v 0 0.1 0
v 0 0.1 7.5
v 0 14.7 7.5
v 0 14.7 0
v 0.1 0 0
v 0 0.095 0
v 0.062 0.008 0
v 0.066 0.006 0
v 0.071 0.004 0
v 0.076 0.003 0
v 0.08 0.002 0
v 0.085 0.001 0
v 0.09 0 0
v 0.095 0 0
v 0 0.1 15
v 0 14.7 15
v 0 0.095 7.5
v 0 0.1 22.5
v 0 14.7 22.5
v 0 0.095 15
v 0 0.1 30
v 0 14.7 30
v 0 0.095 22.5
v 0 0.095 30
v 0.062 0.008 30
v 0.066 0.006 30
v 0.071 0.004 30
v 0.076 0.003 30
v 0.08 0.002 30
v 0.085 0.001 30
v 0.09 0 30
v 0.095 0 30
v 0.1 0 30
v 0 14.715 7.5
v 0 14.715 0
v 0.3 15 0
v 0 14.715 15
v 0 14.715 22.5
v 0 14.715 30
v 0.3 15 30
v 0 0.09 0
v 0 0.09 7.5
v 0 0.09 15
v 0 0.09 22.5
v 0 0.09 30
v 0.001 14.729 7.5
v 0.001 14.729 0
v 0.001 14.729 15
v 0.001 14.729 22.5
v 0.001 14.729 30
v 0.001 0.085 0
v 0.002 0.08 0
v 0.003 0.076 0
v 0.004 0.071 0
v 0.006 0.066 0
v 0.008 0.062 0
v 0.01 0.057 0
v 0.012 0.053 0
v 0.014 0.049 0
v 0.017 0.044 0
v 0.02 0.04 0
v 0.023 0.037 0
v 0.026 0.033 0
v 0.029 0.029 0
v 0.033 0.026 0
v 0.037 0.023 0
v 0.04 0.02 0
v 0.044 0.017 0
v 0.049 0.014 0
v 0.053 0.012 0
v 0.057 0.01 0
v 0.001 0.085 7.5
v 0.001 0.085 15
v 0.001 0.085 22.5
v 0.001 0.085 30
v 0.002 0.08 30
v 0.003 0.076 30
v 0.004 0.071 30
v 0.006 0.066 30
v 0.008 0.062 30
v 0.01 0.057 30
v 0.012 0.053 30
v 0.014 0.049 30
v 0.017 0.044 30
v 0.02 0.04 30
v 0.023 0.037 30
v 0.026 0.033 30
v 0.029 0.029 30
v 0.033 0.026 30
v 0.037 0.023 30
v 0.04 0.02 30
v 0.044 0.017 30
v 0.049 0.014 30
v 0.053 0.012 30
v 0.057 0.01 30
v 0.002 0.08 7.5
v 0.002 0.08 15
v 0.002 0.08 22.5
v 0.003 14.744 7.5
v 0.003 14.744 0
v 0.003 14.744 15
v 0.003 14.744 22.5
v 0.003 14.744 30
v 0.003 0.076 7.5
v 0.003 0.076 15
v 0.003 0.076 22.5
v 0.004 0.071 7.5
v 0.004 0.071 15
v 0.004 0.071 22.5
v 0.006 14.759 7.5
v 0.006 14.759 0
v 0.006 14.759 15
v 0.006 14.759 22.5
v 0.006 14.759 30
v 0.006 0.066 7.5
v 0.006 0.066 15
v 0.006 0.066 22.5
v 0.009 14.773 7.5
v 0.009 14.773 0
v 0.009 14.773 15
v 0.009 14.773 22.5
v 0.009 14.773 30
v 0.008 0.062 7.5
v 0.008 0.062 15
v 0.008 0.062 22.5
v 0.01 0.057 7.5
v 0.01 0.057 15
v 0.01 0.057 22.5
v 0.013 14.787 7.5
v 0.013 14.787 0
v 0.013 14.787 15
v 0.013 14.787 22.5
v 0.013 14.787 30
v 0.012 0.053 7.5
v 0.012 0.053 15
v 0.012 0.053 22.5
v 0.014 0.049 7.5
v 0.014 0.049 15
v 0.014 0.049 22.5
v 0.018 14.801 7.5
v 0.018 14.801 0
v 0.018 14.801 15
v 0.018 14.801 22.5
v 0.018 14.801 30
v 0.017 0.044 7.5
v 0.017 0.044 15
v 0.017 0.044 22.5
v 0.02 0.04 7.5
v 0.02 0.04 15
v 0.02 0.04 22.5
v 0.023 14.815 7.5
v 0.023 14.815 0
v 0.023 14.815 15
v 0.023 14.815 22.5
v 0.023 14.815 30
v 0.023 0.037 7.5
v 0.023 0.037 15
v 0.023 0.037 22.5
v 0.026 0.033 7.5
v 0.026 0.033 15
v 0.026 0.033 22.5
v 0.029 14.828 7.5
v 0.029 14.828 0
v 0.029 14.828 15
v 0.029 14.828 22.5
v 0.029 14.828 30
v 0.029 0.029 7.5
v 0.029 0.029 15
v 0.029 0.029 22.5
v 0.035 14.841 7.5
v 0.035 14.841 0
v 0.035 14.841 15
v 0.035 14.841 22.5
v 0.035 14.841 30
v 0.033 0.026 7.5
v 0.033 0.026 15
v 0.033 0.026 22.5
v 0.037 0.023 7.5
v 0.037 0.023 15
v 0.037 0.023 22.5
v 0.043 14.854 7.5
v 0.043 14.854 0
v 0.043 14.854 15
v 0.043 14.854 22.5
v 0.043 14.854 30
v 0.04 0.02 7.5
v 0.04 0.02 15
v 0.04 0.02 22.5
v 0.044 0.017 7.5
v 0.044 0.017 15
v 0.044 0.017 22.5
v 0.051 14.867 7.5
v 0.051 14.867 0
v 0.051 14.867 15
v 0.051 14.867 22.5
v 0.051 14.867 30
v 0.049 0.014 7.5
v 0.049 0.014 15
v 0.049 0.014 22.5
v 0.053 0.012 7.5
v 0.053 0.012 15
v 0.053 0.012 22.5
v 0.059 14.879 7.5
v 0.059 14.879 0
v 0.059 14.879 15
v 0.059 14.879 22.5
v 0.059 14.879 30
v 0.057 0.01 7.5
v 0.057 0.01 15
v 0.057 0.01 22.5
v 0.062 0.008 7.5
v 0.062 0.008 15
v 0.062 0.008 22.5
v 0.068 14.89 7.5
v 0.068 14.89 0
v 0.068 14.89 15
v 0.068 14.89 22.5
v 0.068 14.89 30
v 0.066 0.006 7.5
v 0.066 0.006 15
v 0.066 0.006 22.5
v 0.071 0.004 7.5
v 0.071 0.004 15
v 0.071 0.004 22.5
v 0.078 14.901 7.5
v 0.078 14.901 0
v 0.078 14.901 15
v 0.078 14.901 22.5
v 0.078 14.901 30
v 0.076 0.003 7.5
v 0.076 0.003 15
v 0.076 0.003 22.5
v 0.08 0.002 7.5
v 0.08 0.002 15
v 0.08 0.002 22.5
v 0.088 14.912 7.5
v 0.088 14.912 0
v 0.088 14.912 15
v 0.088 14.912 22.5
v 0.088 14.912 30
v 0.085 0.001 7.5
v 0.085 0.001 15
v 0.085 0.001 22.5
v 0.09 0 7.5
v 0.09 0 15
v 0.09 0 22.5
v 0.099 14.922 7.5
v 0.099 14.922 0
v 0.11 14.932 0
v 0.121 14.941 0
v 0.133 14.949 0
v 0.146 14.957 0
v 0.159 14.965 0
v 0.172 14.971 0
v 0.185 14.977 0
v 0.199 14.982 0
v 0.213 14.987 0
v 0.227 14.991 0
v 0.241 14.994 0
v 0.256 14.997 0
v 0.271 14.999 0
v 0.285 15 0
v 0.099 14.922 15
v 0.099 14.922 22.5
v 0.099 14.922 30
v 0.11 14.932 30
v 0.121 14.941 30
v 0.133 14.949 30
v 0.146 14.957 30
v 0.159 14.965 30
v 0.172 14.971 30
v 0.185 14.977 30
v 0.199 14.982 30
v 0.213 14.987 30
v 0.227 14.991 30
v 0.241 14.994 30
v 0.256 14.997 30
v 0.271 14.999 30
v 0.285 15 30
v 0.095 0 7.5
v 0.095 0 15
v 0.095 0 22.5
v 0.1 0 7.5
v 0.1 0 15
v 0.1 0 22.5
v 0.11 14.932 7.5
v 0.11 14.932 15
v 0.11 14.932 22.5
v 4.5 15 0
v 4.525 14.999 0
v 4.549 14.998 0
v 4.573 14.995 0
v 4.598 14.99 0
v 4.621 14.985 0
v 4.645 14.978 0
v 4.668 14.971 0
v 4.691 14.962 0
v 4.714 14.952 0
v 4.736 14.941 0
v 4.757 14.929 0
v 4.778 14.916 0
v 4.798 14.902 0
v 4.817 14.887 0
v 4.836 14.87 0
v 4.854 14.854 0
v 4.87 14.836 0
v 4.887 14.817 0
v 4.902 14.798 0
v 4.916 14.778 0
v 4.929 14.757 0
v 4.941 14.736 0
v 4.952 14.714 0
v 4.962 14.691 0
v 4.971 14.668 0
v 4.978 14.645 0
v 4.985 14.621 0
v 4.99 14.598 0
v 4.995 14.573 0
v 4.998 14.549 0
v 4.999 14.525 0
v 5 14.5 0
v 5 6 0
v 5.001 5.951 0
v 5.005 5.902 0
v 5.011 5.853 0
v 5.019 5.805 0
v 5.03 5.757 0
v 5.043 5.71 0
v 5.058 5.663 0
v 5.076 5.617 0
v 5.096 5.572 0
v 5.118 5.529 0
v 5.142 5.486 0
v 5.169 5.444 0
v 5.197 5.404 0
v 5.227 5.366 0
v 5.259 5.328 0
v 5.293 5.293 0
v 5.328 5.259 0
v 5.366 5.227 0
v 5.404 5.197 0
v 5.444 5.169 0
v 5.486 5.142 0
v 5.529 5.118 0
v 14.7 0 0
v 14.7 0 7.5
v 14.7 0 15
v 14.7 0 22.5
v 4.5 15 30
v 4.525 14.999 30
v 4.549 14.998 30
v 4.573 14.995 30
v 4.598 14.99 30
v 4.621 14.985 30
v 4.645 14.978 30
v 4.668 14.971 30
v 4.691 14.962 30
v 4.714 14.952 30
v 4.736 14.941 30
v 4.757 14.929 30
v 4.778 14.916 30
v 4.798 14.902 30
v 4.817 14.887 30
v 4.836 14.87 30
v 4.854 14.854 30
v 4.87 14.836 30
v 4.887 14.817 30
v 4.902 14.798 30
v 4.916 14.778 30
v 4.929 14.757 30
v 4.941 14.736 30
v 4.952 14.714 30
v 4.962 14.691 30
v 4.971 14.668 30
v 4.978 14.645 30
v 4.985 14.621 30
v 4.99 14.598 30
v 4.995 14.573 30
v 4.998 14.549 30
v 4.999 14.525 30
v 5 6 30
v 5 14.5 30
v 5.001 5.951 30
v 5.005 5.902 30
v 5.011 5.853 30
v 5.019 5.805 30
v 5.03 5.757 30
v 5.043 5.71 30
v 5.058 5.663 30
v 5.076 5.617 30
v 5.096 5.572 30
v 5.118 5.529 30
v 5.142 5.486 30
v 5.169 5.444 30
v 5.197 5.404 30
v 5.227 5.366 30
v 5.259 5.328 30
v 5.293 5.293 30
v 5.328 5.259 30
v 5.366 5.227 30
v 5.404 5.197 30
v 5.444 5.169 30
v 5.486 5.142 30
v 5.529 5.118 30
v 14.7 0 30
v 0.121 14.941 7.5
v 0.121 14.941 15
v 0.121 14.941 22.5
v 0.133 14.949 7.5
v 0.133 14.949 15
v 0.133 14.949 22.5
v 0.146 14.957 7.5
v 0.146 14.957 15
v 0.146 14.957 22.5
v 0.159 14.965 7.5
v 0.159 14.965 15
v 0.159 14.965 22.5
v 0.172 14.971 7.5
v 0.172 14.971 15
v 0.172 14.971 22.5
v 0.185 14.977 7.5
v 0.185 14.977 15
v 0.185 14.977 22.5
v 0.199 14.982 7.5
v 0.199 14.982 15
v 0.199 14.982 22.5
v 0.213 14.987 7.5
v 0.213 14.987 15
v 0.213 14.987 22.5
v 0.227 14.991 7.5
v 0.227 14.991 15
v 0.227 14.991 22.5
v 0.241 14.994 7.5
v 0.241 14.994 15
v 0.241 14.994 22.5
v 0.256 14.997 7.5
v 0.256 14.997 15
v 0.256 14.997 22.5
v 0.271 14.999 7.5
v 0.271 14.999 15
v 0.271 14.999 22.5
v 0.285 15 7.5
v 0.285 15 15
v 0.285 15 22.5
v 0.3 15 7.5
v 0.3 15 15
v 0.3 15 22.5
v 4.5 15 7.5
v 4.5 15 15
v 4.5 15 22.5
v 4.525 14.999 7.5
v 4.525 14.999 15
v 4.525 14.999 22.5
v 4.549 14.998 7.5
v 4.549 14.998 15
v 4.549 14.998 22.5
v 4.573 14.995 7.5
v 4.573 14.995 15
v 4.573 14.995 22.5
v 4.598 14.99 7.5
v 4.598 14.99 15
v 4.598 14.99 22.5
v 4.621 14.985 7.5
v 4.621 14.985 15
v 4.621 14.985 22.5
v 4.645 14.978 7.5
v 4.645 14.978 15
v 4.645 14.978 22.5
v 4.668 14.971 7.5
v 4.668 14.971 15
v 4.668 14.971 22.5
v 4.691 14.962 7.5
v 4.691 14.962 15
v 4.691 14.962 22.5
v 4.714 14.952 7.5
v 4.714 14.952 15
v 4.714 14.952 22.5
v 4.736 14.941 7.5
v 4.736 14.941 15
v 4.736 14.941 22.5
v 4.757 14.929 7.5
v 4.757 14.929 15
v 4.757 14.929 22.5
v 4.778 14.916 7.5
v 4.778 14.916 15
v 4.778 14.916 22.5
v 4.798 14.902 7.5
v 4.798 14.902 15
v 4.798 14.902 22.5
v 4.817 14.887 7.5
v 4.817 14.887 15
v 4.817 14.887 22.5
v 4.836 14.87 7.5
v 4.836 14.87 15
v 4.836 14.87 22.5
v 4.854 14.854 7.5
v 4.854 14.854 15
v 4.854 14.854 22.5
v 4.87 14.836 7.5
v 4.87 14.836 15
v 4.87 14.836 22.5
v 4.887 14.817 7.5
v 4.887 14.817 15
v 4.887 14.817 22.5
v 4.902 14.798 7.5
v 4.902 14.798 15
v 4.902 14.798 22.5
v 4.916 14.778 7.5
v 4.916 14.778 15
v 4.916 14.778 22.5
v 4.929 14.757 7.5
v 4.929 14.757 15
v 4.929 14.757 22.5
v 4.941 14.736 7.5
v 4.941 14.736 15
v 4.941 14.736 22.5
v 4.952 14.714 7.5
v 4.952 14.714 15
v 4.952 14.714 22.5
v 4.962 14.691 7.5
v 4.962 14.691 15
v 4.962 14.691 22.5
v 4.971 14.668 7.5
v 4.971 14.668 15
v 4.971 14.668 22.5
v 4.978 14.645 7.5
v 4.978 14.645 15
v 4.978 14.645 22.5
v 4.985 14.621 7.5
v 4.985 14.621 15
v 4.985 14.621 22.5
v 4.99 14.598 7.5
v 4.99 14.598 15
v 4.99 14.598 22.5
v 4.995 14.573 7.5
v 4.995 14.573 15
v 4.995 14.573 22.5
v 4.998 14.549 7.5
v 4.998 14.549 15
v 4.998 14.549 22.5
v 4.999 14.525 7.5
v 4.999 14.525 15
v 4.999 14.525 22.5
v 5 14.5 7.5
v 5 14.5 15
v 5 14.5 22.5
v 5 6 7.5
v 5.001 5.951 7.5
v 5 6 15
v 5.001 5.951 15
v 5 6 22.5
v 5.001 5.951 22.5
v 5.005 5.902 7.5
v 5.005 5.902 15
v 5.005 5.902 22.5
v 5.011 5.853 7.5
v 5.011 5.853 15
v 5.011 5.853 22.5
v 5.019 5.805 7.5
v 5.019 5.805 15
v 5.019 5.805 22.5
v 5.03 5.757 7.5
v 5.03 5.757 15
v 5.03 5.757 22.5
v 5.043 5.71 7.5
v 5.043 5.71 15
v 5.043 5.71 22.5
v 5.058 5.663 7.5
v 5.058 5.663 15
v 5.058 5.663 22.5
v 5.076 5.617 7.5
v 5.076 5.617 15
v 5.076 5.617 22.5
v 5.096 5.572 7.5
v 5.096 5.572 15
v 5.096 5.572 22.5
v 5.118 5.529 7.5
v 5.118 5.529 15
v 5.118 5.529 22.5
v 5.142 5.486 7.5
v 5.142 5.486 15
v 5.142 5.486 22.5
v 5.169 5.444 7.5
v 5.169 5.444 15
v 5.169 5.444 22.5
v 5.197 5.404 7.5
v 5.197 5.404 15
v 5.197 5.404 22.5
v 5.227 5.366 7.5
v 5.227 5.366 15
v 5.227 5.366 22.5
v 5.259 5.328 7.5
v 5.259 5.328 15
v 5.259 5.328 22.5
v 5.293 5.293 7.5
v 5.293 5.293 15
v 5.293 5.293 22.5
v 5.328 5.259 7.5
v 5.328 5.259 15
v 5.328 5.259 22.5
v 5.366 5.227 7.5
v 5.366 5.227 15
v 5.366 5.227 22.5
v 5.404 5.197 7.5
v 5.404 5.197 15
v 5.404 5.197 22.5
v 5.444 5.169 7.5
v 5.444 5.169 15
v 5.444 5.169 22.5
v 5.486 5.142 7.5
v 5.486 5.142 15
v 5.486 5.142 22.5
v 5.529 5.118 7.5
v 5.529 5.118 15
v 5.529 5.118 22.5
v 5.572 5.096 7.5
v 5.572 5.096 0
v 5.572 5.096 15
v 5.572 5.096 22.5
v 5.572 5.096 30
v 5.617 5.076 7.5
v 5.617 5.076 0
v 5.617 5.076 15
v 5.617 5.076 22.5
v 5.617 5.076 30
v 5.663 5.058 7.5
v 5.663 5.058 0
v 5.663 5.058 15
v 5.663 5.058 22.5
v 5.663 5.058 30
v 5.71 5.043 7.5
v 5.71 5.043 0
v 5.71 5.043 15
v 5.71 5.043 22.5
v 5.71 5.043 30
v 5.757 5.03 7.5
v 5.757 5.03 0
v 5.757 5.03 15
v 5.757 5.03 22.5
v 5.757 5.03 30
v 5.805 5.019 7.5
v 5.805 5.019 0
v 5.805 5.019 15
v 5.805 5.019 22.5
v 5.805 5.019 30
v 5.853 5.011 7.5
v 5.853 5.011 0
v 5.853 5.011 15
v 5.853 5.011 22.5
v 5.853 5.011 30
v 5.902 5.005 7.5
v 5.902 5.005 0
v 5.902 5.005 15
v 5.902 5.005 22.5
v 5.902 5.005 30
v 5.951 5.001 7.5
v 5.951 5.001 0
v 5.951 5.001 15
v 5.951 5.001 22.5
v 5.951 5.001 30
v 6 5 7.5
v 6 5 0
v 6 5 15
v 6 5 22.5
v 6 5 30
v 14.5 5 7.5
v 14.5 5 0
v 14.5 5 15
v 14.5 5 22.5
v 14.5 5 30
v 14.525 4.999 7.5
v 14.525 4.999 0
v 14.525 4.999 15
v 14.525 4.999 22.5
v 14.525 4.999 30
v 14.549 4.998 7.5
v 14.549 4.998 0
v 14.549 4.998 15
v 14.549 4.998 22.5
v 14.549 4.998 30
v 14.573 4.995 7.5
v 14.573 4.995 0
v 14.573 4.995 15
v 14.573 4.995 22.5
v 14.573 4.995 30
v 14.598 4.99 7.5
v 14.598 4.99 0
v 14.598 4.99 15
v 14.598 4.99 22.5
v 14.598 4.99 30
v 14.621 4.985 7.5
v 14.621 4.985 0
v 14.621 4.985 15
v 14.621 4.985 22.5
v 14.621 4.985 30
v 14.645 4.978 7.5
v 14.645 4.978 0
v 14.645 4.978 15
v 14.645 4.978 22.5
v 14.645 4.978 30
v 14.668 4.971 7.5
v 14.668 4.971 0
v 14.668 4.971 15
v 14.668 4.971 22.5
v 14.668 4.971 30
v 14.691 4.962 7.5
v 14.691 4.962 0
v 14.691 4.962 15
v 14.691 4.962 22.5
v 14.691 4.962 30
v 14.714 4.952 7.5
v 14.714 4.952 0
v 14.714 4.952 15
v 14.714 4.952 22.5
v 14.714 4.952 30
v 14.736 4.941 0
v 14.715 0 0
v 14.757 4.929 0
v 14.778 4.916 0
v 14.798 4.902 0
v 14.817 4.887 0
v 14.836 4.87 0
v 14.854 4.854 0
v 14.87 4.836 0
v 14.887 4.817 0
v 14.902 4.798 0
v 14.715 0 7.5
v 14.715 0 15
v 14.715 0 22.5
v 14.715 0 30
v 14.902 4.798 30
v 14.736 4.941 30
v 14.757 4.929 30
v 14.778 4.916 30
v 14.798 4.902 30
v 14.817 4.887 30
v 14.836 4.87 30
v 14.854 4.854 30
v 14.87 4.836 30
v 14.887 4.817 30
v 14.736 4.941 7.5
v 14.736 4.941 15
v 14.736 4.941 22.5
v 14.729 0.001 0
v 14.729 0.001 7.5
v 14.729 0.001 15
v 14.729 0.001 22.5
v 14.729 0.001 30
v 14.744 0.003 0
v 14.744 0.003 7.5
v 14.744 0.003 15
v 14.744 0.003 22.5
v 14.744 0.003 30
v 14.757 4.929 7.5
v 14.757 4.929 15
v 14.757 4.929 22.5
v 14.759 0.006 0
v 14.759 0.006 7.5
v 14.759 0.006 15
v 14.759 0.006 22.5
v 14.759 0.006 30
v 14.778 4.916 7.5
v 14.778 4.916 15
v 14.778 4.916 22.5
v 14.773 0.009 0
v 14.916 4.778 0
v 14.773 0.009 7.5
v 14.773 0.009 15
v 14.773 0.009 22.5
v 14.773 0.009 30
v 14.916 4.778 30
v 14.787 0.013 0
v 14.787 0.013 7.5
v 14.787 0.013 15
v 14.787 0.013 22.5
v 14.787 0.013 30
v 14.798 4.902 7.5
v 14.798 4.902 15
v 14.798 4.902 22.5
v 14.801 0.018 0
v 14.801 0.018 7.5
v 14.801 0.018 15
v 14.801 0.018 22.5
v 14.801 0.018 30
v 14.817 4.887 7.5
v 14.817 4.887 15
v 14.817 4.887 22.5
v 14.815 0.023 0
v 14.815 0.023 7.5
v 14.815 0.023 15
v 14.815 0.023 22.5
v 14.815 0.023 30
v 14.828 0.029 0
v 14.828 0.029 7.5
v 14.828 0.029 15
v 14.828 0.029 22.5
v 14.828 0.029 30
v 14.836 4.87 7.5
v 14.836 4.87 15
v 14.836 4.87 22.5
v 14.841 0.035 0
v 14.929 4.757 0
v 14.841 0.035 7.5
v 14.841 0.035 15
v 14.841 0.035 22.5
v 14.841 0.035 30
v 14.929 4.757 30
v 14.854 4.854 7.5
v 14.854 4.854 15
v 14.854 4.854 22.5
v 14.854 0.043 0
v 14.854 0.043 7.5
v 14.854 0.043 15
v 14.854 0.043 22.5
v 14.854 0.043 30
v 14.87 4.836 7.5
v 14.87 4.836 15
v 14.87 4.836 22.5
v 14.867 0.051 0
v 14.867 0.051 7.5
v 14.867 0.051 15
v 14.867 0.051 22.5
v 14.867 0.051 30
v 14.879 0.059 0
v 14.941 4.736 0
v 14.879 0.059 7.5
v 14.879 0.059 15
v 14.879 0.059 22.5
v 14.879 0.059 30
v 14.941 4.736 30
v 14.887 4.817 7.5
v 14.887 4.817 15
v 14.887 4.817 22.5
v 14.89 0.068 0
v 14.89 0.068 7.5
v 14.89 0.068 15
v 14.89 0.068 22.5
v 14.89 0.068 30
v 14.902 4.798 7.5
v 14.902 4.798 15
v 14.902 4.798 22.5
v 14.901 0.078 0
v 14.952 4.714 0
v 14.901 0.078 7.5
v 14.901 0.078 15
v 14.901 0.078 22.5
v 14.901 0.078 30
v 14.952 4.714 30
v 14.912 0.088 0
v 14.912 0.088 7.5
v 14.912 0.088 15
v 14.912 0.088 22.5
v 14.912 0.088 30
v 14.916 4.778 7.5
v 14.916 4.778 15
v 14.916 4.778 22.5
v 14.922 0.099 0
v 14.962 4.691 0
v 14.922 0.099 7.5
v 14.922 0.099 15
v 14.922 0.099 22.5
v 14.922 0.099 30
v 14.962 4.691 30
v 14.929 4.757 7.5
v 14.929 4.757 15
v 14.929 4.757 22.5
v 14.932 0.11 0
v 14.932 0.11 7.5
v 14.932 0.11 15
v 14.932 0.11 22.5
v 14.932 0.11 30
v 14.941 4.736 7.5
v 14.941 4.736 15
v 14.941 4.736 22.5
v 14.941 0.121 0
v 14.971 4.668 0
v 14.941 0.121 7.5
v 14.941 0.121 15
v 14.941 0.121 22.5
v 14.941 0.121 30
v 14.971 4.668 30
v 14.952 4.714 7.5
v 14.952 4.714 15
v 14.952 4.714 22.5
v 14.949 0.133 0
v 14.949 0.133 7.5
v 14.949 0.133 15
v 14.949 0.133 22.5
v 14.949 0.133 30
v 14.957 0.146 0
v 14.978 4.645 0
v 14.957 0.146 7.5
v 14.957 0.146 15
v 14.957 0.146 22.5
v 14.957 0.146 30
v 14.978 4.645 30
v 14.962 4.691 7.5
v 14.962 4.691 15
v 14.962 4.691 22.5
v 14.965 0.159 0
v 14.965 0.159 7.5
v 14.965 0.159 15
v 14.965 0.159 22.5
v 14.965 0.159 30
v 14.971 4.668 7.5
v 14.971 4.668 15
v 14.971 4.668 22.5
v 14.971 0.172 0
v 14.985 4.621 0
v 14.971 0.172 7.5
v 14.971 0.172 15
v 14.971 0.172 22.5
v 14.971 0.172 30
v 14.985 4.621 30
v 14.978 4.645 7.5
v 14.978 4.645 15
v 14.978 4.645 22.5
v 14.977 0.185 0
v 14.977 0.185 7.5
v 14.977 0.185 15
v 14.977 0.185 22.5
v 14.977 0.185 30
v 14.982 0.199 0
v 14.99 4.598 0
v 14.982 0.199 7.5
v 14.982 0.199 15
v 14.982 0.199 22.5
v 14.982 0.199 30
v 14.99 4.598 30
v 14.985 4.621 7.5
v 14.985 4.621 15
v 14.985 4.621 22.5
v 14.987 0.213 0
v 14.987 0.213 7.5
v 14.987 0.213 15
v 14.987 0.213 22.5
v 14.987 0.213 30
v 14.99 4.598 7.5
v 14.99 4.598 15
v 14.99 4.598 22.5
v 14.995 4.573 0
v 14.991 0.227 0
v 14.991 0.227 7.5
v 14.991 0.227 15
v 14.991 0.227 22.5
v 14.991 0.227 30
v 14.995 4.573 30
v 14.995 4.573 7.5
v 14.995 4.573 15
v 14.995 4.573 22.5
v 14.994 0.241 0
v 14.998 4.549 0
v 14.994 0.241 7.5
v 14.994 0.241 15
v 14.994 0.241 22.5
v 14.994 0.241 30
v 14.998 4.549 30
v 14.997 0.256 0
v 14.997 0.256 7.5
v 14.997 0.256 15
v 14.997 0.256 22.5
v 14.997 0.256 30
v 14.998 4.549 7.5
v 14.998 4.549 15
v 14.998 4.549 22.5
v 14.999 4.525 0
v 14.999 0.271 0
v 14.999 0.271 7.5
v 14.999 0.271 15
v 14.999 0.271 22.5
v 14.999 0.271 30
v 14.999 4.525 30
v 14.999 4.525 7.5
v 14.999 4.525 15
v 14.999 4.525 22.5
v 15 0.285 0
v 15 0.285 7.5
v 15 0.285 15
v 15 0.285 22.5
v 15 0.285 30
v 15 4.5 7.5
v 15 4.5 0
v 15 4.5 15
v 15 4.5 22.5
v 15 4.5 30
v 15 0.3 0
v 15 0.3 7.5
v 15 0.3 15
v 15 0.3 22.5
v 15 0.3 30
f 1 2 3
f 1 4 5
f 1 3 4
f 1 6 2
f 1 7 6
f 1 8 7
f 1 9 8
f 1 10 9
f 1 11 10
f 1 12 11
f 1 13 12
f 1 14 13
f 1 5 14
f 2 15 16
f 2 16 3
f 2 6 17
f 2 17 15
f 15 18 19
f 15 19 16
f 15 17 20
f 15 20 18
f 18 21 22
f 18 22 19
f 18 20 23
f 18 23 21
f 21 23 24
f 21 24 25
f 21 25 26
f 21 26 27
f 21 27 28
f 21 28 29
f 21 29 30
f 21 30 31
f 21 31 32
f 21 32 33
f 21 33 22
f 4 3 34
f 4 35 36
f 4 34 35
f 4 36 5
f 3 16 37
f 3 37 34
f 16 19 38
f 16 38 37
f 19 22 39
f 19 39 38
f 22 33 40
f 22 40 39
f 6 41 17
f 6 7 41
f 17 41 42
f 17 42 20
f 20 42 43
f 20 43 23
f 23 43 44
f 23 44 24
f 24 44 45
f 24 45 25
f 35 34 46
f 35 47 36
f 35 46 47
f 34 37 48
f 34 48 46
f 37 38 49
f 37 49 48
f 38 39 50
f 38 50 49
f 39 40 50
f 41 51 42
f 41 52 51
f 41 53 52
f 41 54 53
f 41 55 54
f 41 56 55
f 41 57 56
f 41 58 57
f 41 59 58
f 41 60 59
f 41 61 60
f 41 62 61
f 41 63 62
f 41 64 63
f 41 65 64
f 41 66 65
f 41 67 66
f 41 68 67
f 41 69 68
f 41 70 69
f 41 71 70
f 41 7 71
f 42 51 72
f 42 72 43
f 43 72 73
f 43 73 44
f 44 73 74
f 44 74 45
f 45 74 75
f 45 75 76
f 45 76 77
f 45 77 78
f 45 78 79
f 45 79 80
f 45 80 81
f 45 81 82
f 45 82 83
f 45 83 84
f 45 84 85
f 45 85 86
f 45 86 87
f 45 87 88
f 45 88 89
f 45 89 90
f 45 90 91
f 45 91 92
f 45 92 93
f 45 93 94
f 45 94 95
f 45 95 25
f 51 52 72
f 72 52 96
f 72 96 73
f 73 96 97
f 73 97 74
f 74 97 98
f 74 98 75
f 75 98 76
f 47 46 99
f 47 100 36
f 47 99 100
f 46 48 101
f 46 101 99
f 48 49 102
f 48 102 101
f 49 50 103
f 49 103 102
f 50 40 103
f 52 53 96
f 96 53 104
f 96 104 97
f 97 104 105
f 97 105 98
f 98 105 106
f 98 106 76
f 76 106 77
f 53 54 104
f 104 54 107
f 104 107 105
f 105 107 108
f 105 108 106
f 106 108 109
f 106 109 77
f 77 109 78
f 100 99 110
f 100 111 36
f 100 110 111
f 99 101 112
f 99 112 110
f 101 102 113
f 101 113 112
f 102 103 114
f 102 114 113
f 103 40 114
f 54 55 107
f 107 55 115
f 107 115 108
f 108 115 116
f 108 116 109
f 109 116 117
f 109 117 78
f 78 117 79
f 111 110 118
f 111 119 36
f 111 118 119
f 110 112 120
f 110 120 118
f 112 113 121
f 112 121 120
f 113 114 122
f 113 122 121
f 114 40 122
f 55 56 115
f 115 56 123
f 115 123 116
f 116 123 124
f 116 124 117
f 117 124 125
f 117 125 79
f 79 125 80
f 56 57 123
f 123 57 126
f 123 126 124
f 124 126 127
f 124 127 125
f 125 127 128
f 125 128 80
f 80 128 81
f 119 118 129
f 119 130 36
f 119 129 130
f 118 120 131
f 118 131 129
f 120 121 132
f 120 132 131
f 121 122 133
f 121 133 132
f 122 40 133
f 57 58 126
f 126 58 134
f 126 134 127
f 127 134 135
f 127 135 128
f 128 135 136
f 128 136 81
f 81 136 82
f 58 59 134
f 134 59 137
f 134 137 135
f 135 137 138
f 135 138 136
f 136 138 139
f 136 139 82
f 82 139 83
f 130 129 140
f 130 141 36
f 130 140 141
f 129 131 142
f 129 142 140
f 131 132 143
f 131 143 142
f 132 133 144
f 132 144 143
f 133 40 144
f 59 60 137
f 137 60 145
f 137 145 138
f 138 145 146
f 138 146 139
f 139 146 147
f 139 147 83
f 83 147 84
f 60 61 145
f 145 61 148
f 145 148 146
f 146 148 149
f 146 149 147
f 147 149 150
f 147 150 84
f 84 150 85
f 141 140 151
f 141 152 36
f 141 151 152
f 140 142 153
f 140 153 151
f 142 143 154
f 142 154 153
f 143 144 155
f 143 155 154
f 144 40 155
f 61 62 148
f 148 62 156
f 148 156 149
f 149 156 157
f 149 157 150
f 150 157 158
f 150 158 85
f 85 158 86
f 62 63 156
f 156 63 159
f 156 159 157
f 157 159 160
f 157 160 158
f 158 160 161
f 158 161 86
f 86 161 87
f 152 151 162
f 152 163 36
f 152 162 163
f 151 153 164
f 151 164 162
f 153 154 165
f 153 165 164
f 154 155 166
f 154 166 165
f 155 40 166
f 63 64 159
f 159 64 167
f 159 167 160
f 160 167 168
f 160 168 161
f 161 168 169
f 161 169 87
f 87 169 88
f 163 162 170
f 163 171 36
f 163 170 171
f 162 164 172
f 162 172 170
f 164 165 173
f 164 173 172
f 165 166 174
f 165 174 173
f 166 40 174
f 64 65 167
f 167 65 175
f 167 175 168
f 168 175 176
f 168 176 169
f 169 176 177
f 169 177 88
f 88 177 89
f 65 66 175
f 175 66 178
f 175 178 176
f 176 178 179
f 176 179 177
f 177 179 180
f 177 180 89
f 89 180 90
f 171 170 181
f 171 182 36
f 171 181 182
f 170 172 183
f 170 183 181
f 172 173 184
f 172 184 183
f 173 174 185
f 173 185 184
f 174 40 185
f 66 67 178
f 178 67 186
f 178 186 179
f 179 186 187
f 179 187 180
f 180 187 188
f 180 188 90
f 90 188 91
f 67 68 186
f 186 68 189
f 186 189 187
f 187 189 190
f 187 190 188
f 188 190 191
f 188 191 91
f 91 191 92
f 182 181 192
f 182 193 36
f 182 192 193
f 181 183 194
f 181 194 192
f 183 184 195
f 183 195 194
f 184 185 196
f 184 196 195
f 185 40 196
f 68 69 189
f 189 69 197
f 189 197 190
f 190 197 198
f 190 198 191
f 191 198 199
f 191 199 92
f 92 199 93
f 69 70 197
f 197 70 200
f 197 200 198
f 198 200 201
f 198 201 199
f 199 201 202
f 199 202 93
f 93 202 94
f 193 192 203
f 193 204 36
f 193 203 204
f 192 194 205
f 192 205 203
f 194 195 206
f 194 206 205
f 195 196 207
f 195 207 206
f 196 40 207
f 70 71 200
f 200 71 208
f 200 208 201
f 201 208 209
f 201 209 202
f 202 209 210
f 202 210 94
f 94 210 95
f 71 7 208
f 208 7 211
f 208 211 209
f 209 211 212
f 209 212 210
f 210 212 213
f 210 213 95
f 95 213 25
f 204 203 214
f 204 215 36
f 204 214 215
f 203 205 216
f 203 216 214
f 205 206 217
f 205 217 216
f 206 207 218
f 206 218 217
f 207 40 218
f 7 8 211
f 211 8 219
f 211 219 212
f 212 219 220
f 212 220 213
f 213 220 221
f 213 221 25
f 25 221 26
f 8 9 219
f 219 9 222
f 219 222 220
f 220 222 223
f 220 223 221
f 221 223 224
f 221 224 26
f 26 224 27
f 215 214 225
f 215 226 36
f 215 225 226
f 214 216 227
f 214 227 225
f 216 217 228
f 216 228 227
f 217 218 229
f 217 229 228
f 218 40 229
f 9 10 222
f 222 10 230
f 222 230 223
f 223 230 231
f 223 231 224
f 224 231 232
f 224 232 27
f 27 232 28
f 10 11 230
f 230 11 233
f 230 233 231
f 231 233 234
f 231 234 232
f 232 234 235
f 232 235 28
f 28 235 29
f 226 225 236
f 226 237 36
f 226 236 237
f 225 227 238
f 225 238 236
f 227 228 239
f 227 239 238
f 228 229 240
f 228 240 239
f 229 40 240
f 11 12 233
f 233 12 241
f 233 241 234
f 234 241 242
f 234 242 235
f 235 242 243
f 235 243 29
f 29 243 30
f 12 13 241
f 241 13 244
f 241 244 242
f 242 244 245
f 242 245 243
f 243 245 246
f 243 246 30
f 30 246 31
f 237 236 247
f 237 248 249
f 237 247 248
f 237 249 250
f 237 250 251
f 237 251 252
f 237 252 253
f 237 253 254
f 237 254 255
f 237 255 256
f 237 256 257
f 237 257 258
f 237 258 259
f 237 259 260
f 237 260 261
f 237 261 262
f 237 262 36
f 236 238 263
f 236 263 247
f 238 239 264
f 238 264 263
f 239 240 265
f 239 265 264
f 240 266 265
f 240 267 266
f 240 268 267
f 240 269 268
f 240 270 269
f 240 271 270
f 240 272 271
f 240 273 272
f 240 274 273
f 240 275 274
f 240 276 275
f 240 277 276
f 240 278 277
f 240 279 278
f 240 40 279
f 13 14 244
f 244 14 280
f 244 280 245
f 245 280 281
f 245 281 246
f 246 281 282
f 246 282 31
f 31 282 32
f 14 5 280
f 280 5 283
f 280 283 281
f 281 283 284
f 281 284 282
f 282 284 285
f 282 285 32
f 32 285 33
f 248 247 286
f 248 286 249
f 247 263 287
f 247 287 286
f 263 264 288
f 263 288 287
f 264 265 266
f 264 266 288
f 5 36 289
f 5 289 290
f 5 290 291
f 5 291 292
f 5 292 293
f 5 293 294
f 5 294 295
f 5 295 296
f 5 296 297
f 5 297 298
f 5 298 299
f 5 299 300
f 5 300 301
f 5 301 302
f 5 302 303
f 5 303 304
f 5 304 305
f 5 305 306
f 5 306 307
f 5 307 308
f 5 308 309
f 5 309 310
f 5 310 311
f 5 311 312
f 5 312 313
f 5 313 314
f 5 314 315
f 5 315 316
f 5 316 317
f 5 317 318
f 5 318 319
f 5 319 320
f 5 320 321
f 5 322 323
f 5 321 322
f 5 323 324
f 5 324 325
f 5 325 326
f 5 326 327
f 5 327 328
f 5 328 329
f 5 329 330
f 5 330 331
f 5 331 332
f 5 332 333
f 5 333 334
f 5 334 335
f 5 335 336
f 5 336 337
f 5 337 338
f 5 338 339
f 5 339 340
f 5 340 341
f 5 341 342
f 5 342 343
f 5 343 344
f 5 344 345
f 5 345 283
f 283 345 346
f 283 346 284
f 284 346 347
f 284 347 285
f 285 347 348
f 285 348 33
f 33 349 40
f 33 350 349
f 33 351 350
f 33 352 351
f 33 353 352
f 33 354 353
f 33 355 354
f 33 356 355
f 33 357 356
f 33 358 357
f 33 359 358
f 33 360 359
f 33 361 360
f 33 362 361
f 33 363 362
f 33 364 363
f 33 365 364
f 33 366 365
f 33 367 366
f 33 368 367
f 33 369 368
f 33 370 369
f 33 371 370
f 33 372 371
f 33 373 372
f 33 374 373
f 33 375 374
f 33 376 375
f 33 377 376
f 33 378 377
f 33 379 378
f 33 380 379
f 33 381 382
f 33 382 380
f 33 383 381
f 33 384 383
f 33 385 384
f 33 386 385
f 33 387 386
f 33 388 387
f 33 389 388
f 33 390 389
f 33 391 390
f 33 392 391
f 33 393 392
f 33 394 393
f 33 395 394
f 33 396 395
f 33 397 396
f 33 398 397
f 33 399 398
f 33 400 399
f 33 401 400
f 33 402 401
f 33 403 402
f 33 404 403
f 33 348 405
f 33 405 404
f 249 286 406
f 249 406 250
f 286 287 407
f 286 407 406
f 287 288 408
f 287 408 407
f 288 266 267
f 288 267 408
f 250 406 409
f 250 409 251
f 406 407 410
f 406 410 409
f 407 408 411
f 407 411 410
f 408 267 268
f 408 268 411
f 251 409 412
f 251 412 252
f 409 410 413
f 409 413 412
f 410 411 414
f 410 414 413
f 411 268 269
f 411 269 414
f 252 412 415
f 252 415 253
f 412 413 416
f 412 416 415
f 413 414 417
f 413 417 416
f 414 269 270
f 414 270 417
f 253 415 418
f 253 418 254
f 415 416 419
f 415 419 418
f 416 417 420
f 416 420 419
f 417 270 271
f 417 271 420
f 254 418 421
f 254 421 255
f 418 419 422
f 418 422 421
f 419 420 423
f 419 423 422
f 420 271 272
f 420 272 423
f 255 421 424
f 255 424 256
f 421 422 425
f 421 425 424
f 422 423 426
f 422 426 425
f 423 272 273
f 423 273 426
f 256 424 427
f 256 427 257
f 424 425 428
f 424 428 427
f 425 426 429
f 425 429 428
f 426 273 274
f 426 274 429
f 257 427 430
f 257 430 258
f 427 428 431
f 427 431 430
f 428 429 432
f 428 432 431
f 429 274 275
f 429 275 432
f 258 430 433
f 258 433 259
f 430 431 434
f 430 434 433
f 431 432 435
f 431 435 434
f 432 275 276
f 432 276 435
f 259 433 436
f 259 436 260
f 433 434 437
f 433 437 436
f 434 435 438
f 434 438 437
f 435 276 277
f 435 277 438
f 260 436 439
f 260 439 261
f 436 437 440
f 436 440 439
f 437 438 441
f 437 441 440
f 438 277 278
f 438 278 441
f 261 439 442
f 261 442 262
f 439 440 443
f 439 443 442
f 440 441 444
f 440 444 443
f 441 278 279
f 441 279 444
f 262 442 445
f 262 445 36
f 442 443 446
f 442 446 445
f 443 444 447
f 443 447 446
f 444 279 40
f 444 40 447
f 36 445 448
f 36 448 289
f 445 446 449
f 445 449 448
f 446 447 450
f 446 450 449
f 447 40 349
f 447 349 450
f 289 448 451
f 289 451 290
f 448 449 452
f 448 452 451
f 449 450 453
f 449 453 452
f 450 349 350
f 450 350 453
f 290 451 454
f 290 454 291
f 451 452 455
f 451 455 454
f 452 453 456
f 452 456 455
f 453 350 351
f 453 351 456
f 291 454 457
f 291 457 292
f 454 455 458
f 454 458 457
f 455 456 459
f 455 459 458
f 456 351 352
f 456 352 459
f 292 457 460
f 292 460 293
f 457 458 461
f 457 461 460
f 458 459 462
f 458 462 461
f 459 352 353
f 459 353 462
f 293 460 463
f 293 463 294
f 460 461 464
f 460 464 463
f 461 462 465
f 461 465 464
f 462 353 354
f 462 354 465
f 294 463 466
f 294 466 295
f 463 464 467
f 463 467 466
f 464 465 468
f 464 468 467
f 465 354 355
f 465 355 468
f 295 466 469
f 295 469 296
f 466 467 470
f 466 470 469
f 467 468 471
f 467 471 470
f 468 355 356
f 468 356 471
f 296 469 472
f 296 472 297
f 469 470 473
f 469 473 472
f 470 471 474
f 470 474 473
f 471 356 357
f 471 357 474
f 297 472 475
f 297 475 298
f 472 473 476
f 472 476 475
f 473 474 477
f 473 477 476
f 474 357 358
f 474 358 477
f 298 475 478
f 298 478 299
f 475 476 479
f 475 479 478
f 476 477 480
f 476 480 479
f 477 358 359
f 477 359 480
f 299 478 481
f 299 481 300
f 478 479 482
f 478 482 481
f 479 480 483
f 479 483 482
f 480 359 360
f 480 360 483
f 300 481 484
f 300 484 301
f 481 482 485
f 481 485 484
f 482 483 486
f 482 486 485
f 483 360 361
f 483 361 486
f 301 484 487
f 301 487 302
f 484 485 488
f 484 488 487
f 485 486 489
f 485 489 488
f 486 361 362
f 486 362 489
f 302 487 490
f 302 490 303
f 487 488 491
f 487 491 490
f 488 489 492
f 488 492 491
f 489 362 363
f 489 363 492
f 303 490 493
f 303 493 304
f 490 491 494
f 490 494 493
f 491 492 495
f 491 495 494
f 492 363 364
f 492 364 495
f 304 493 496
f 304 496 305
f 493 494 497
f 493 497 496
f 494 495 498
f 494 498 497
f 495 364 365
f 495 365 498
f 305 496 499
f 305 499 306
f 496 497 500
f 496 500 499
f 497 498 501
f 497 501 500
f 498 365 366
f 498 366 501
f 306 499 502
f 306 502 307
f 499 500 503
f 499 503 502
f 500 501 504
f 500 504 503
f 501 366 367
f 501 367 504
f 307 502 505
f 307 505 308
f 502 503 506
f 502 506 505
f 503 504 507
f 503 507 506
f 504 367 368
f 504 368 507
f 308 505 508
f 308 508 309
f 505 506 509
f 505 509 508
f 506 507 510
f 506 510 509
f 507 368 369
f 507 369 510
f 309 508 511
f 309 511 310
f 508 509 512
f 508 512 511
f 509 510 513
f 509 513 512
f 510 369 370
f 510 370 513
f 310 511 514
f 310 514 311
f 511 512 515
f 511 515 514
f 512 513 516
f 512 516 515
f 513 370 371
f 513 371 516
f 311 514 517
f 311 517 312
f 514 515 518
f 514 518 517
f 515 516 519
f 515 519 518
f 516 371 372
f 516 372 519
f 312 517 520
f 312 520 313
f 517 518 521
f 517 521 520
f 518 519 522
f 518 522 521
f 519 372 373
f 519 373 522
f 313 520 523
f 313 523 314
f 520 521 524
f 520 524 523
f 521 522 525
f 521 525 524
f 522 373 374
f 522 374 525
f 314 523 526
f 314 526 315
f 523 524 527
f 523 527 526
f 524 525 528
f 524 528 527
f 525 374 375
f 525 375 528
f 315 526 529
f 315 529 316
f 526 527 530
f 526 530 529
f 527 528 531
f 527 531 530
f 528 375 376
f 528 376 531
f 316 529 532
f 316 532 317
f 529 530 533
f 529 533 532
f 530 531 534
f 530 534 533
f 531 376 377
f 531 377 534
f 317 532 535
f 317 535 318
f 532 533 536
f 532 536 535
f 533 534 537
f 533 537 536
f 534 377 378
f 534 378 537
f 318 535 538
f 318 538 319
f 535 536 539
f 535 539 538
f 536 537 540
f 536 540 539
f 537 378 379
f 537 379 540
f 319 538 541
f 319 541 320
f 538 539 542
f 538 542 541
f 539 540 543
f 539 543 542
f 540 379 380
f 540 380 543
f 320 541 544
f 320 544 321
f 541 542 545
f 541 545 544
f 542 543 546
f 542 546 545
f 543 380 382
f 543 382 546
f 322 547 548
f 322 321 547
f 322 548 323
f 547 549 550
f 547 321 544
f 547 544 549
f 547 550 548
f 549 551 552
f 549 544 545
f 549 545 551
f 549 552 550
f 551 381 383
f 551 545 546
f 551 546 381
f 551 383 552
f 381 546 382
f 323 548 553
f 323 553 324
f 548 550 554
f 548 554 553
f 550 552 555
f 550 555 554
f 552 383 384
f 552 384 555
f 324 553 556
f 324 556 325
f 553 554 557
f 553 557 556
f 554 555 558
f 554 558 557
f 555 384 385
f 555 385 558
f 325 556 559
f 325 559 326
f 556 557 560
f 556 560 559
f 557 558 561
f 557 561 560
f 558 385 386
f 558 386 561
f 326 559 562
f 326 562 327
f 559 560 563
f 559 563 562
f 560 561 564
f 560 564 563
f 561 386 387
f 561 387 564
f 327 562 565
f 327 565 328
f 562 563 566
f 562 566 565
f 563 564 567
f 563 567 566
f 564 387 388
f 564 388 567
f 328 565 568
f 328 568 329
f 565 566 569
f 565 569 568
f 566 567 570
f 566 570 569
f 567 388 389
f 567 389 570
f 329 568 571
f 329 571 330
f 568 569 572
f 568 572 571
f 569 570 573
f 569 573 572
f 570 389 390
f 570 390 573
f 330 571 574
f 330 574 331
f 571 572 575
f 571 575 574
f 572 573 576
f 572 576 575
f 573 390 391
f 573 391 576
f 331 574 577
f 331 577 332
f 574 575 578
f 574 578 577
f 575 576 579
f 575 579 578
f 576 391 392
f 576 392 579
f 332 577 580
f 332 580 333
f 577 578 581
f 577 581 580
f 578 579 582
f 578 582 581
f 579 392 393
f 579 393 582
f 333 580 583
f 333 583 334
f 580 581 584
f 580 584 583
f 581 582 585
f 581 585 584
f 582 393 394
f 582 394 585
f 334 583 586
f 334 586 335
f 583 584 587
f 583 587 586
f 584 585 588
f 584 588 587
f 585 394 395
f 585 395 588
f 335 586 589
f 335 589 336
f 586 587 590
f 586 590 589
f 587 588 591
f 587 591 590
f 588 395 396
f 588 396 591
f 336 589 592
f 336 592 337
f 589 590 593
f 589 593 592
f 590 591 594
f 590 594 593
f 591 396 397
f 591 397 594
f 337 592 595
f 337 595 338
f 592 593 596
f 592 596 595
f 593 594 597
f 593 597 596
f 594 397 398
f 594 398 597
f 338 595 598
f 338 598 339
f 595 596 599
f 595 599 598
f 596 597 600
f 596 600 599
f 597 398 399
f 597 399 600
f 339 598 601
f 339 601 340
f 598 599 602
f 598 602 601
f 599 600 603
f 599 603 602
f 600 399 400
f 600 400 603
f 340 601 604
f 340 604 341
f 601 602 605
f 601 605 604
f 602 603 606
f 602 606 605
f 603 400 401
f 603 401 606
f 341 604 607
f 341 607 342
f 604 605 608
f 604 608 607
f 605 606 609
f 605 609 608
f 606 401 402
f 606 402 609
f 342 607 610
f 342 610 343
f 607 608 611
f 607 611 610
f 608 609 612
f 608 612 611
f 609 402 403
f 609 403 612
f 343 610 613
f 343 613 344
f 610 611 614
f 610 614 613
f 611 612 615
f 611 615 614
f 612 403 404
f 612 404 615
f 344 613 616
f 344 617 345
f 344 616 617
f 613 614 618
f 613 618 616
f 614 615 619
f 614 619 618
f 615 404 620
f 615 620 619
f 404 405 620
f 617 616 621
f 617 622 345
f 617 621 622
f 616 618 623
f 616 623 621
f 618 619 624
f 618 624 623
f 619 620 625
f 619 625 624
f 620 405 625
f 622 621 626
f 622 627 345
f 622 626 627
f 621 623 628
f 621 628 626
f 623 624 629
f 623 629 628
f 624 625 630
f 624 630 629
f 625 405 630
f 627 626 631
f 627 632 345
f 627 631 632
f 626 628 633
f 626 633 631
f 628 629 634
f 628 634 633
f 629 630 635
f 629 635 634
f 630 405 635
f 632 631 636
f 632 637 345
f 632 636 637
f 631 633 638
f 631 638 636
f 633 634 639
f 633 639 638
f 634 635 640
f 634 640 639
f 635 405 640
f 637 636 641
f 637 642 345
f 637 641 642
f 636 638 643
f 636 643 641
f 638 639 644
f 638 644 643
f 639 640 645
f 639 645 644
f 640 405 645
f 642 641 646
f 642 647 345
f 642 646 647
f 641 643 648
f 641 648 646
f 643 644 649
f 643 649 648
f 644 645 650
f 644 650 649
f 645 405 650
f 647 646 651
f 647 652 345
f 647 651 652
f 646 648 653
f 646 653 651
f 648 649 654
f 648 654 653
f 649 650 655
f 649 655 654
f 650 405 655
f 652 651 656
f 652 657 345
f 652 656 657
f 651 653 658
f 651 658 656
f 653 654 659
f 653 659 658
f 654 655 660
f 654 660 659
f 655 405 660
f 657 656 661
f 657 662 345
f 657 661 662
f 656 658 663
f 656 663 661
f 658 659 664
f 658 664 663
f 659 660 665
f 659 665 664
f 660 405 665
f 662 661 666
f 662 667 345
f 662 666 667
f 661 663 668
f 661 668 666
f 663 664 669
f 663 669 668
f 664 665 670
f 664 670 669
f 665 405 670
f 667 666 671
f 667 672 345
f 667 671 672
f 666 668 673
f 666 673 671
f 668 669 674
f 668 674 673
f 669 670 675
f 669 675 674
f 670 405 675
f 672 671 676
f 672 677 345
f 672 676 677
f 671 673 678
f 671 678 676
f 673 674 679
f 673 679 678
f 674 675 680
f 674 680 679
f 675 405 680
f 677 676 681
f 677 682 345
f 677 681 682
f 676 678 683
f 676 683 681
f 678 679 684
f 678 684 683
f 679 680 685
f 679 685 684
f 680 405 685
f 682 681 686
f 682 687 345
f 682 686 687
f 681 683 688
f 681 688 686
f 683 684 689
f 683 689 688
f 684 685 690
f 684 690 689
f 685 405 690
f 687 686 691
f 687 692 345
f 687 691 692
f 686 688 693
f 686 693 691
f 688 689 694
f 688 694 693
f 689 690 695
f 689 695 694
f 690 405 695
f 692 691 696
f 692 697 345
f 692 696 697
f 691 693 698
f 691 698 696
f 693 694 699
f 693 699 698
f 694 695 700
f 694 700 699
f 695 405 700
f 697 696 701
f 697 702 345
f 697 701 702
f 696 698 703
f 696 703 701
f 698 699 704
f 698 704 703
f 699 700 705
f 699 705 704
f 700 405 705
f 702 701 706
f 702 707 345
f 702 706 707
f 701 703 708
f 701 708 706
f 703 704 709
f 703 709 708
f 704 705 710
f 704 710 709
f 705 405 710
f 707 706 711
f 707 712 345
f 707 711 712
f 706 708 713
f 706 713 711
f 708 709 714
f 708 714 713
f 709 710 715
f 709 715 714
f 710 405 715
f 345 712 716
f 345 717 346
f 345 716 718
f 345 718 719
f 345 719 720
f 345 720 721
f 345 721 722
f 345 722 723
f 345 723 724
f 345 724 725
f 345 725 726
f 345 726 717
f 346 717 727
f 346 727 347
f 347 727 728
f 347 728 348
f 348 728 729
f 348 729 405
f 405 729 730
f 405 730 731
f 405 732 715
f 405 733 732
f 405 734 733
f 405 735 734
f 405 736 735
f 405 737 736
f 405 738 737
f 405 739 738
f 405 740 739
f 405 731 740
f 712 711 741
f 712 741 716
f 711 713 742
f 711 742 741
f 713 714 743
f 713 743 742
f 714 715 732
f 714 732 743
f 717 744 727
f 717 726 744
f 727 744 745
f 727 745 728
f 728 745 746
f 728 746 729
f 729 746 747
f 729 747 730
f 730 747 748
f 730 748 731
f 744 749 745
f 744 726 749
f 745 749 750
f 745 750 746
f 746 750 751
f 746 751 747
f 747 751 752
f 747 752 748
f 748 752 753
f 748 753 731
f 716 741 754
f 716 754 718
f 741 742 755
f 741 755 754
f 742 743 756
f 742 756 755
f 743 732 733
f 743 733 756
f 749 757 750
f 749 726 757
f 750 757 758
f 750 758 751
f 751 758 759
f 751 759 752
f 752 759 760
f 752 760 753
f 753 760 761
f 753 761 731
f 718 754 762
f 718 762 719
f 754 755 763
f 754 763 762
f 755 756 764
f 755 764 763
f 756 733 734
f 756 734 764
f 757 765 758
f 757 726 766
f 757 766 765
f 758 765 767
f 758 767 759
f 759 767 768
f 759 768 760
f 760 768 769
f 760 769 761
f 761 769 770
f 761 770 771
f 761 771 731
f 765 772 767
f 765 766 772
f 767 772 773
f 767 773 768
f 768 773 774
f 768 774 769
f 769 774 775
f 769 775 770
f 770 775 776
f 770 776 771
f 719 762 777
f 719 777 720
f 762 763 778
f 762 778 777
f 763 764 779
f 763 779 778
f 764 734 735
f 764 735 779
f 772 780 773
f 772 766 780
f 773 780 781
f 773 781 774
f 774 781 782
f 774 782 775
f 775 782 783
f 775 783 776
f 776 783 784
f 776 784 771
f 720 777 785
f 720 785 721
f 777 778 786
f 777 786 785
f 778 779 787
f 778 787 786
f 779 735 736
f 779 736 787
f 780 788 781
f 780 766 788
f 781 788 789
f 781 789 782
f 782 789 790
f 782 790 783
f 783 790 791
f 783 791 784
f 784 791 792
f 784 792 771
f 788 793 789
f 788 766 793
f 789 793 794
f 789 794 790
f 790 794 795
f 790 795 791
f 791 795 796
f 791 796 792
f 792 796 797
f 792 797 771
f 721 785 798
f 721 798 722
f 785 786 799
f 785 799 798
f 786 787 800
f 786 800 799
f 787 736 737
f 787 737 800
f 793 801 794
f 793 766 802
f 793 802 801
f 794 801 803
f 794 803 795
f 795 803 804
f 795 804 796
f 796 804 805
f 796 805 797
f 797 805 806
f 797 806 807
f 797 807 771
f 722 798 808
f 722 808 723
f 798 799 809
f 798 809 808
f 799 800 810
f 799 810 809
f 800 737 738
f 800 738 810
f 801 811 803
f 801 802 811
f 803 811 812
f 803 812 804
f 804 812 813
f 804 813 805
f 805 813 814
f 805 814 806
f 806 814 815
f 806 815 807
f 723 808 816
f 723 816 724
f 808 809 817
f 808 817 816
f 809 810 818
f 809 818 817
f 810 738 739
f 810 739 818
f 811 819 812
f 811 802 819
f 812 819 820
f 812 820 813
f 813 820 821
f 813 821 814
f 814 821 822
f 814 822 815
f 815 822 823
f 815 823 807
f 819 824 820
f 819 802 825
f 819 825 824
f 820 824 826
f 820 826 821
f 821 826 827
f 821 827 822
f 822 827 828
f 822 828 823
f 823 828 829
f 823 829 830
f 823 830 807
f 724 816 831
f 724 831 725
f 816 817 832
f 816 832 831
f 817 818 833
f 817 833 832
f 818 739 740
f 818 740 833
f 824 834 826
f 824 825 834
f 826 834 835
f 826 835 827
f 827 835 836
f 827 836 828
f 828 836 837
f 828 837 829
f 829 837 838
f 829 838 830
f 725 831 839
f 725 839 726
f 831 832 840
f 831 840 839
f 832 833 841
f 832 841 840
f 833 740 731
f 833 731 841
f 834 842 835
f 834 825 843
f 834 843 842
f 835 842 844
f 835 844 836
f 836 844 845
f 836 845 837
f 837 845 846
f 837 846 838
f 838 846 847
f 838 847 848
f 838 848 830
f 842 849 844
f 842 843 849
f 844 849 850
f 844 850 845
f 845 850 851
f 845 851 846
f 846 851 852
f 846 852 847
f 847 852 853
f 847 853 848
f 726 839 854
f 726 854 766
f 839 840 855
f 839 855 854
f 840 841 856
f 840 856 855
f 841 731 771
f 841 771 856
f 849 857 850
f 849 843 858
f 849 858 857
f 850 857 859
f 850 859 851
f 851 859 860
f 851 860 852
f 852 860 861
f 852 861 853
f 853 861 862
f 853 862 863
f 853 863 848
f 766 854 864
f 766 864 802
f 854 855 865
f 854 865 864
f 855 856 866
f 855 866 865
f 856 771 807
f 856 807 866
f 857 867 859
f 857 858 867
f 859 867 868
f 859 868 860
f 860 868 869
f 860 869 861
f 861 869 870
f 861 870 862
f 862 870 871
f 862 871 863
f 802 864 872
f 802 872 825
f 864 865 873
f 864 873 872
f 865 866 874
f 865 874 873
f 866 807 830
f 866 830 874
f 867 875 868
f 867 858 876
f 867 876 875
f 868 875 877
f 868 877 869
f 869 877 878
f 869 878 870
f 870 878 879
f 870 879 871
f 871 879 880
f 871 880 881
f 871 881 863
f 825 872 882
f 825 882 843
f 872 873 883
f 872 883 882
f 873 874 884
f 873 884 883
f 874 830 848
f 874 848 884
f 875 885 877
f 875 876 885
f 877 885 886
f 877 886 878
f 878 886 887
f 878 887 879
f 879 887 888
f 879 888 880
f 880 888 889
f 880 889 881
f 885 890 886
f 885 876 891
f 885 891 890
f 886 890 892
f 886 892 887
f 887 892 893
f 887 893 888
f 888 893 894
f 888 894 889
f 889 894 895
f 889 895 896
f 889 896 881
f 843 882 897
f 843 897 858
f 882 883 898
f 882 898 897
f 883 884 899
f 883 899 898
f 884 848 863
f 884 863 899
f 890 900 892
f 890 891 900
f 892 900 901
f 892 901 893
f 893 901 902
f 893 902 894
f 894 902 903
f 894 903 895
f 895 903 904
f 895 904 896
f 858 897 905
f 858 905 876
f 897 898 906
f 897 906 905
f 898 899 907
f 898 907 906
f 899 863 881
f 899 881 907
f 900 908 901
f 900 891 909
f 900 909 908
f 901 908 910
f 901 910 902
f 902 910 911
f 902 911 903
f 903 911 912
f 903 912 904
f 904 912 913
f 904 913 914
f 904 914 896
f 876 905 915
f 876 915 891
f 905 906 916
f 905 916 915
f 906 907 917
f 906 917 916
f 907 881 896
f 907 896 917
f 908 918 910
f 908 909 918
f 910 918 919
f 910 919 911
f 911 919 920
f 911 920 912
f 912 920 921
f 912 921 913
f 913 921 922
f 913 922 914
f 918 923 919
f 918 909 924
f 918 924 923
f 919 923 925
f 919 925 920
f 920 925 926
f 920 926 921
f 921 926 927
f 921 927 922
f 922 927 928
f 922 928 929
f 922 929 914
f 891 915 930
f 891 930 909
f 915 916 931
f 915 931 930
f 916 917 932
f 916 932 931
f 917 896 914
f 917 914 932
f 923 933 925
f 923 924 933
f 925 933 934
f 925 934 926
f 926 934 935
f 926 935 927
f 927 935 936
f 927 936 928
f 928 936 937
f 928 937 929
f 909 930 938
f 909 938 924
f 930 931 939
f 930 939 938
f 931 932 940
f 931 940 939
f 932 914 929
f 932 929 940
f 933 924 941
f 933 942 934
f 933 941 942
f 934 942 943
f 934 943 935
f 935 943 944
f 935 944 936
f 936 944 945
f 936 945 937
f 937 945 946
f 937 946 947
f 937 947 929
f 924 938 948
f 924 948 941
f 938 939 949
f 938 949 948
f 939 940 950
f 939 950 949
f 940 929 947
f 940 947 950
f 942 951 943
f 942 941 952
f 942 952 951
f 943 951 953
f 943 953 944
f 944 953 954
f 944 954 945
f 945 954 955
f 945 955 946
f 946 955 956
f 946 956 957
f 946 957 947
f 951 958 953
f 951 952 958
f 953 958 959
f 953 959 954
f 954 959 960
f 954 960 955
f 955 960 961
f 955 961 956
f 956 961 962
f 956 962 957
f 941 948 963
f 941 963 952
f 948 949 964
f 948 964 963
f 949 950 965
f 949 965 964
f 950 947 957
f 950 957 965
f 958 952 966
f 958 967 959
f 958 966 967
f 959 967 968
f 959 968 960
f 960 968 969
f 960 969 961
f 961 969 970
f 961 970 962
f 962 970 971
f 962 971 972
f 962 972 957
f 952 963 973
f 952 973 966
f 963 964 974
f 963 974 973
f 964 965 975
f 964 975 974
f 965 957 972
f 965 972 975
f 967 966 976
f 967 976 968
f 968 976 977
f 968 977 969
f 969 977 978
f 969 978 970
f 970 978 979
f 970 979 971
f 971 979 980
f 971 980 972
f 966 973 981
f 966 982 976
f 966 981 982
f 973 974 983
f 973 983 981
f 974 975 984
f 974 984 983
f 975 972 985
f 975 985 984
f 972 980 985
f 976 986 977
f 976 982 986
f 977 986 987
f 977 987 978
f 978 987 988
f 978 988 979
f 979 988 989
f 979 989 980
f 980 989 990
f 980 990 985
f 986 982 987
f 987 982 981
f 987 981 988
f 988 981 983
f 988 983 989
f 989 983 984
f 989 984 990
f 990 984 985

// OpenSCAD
// Start: lazy_union
default_5_default_5();
// End: lazy_union

// Modules.

// 'PartMaterial undef-default - default 5.0'
module default_5_default_5() {
  // 'None : _combine_solids_and_holes'
  union() {
    // 'default : _combine_solids_and_holes'
    union() {
      // 'extrusion : _combine_solids_and_holes'
      union() {
        // 'extrusion'
        linear_extrude(height=30.0, twist=0.0, slices=4, scale=[1.0, 1.0], $fn=32) {
          polygon(points=[[14.7, 0.0], [0.1, 0.0], [0.0950932325672582, 0.00012045437948275672], [0.09019828596704393, 0.0004815273327803127], [0.08532695255446385, 0.0010823490035219013], [0.08049096779838719, 0.001921471959676957], [0.07570198200967362, 0.0029968746805456026], [0.07097153227455379, 0.0043059664267791065], [0.06631101466077802, 0.005845593481697914], [0.06173165676349103, 0.007612046748871323], [0.05724449065697182, 0.009601070687655658], [0.05286032631740023, 0.011807873565164495], [0.048589725580677846, 0.014227138999972785], [0.04444297669803981, 0.016853038769745463], [0.04043006955075667, 0.019679246851935506], [0.03656067158363546, 0.02269895466372629], [0.032844104515298164, 0.025904887464504103], [0.029289321881345254, 0.02928932188134524], [0.025904887464504117, 0.03284410451529815], [0.022698954663726303, 0.03656067158363545], [0.01967924685193552, 0.040430069550756655], [0.016853038769745463, 0.04444297669803979], [0.0142271389999728, 0.048589725580677826], [0.011807873565164509, 0.05286032631740022], [0.009601070687655686, 0.057244490656971764], [0.007612046748871323, 0.061731656763491016], [0.005845593481697914, 0.06631101466077802], [0.00430596642677912, 0.07097153227455377], [0.0029968746805456026, 0.0757019820096736], [0.001921471959676957, 0.08049096779838714], [0.0010823490035219013, 0.08532695255446382], [0.0004815273327803127, 0.09019828596704392], [0.00012045437948275672, 0.09509323256725821], [0.0, 0.09999999999999999], [-1.7879843267551358e-15, 14.7], [0.00036136313844647994, 14.714720302298225], [0.0014445819983391894, 14.729405142098868], [0.0032470470105639415, 14.744019142336608], [0.0057644158790290945, 14.758527096604839], [0.008990624041635031, 14.772894053970978], [0.012917899280335599, 14.787085403176338], [0.017536780445091993, 14.801066956017666], [0.02283614024661218, 14.814805029709527], [0.02880321206296521, 14.828266528029085], [0.035423620695491764, 14.841419021047798], [0.04268141699991662, 14.854230823257966], [0.050559116309234625, 14.86667106990588], [0.05903774055580477, 14.87870979134773], [0.06809686399117712, 14.890317985249093], [0.07771466239351055, 14.901467686454104], [0.08786796564403399, 14.912132034355963], [0.09853231354589267, 14.922285337606487], [0.10968201475090461, 14.93190313600882], [0.12129020865226822, 14.940962259444193], [0.13332893009411764, 14.949440883690762], [0.14576917674203174, 14.957318583000081], [0.15858097895219891, 14.964576379304505], [0.17173347197091354, 14.971196787937032], [0.1851949702904713, 14.977163859753386], [0.19893304398233225, 14.982463219554905], [0.21291459682365957, 14.987082100719661], [0.22710594602901907, 14.991009375958363], [0.24147290339515975, 14.994235584120968], [0.25598085766338974, 14.996752952989434], [0.27059485790113, 14.998555418001658], [0.2852796977017728, 14.999638636861551], [0.2999999999999982, 15.0], [4.499999999999998, 15.0], [4.524533837163707, 14.999397728102586], [4.549008570164778, 14.997592363336098], [4.573365237227679, 14.994588254982391], [4.597545161008062, 14.990392640201616], [4.62149008995163, 14.985015626597272], [4.645142338627229, 14.978470167866105], [4.668444926696108, 14.97077203259151], [4.691341716182543, 14.961939766255643], [4.713777546715139, 14.951994646561722], [4.735698368412997, 14.940960632174178], [4.757051372096609, 14.928864305000136], [4.7777851165098, 14.915734806151272], [4.797849652246215, 14.901603765740322], [4.817196642081821, 14.886505226681368], [4.8357794774235074, 14.870475562677479], [4.853553390593272, 14.853553390593273], [4.870475562677478, 14.83577947742351], [4.886505226681367, 14.817196642081823], [4.901603765740321, 14.797849652246217], [4.915734806151271, 14.7777851165098], [4.928864305000134, 14.75705137209661], [4.940960632174176, 14.735698368412999], [4.95199464656172, 14.713777546715141], [4.961939766255641, 14.691341716182546], [4.970772032591508, 14.66844492669611], [4.978470167866103, 14.645142338627231], [4.98501562659727, 14.621490089951632], [4.990392640201613, 14.597545161008064], [4.994588254982388, 14.57336523722768], [4.997592363336096, 14.54900857016478], [4.9993977281025845, 14.524533837163709], [4.999999999999998, 14.5], [4.999999999999998, 6.0], [5.001204543794826, 5.950932325672582], [5.004815273327801, 5.901982859670439], [5.010823490035217, 5.853269525544638], [5.019214719596768, 5.804909677983872], [5.029968746805454, 5.757019820096736], [5.04305966426779, 5.709715322745538], [5.058455934816977, 5.66311014660778], [5.076120467488711, 5.61731656763491], [5.096010706876555, 5.572444906569718], [5.118078735651643, 5.528603263174002], [5.142271389999726, 5.485897255806778], [5.168530387697452, 5.444429766980398], [5.196792468519353, 5.404300695507567], [5.226989546637261, 5.365606715836355], [5.259048874645039, 5.328441045152982], [5.29289321881345, 5.292893218813452], [5.32844104515298, 5.259048874645041], [5.3656067158363525, 5.226989546637263], [5.404300695507565, 5.196792468519355], [5.444429766980396, 5.168530387697455], [5.485897255806776, 5.142271389999728], [5.528603263174, 5.118078735651645], [5.572444906569716, 5.096010706876557], [5.617316567634908, 5.076120467488714], [5.663110146607778, 5.058455934816979], [5.709715322745536, 5.043059664267791], [5.757019820096734, 5.029968746805456], [5.804909677983869, 5.01921471959677], [5.853269525544637, 5.010823490035219], [5.901982859670437, 5.004815273327803], [5.95093232567258, 5.001204543794827], [5.999999999999998, 5.0], [14.499999999999998, 4.999999999999998], [14.524533837163707, 4.9993977281025845], [14.549008570164778, 4.997592363336096], [14.573365237227678, 4.994588254982388], [14.597545161008062, 4.990392640201613], [14.62149008995163, 4.98501562659727], [14.64514233862723, 4.978470167866103], [14.668444926696107, 4.970772032591508], [14.691341716182544, 4.961939766255641], [14.71377754671514, 4.95199464656172], [14.735698368412997, 4.940960632174176], [14.757051372096608, 4.928864305000134], [14.777785116509799, 4.915734806151271], [14.797849652246216, 4.901603765740321], [14.817196642081822, 4.886505226681367], [14.835779477423507, 4.870475562677478], [14.853553390593271, 4.853553390593272], [14.870475562677477, 4.8357794774235074], [14.886505226681367, 4.817196642081821], [14.90160376574032, 4.797849652246215], [14.91573480615127, 4.777785116509799], [14.928864305000134, 4.757051372096609], [14.940960632174175, 4.735698368412997], [14.95199464656172, 4.713777546715139], [14.961939766255641, 4.691341716182543], [14.970772032591508, 4.668444926696108], [14.978470167866103, 4.645142338627229], [14.98501562659727, 4.62149008995163], [14.990392640201613, 4.597545161008062], [14.99458825498239, 4.573365237227679], [14.997592363336096, 4.549008570164778], [14.999397728102585, 4.524533837163707], [14.999999999999998, 4.499999999999998], [14.999999999999998, 0.29999999999999805], [14.99963863686155, 0.2852796977017726], [14.998555418001658, 0.2705948579011298], [14.996752952989432, 0.2559808576633894], [14.994235584120968, 0.24147290339515942], [14.991009375958361, 0.2271059460290187], [14.987082100719661, 0.21291459682365915], [14.982463219554905, 0.1989330439823318], [14.977163859753384, 0.18519497029047083], [14.971196787937032, 0.17173347197091313], [14.964576379304505, 0.15858097895219841], [14.95731858300008, 0.1457691767420312], [14.949440883690762, 0.133328930094117], [14.940962259444191, 0.12129020865226761], [14.931903136008819, 0.10968201475090394], [14.922285337606485, 0.09853231354589206], [14.912132034355963, 0.08786796564403326], [14.901467686454103, 0.0777146623935098], [14.89031798524909, 0.06809686399117643], [14.878709791347728, 0.05903774055580402], [14.866671069905879, 0.050559116309233876], [14.854230823257964, 0.04268141699991579], [14.841419021047797, 0.03542362069549093], [14.828266528029083, 0.02880321206296438], [14.814805029709525, 0.022836140246611347], [14.801066956017664, 0.01753678044509116], [14.787085403176336, 0.01291789928033471], [14.772894053970976, 0.008990624041634143], [14.758527096604837, 0.005764415879028206], [14.744019142336606, 0.0032470470105630533], [14.729405142098866, 0.0014445819983383013], [14.714720302298224, 0.00036136313844559176]]);
        }
      }
    }
  }
} // end module default_5_default_5
